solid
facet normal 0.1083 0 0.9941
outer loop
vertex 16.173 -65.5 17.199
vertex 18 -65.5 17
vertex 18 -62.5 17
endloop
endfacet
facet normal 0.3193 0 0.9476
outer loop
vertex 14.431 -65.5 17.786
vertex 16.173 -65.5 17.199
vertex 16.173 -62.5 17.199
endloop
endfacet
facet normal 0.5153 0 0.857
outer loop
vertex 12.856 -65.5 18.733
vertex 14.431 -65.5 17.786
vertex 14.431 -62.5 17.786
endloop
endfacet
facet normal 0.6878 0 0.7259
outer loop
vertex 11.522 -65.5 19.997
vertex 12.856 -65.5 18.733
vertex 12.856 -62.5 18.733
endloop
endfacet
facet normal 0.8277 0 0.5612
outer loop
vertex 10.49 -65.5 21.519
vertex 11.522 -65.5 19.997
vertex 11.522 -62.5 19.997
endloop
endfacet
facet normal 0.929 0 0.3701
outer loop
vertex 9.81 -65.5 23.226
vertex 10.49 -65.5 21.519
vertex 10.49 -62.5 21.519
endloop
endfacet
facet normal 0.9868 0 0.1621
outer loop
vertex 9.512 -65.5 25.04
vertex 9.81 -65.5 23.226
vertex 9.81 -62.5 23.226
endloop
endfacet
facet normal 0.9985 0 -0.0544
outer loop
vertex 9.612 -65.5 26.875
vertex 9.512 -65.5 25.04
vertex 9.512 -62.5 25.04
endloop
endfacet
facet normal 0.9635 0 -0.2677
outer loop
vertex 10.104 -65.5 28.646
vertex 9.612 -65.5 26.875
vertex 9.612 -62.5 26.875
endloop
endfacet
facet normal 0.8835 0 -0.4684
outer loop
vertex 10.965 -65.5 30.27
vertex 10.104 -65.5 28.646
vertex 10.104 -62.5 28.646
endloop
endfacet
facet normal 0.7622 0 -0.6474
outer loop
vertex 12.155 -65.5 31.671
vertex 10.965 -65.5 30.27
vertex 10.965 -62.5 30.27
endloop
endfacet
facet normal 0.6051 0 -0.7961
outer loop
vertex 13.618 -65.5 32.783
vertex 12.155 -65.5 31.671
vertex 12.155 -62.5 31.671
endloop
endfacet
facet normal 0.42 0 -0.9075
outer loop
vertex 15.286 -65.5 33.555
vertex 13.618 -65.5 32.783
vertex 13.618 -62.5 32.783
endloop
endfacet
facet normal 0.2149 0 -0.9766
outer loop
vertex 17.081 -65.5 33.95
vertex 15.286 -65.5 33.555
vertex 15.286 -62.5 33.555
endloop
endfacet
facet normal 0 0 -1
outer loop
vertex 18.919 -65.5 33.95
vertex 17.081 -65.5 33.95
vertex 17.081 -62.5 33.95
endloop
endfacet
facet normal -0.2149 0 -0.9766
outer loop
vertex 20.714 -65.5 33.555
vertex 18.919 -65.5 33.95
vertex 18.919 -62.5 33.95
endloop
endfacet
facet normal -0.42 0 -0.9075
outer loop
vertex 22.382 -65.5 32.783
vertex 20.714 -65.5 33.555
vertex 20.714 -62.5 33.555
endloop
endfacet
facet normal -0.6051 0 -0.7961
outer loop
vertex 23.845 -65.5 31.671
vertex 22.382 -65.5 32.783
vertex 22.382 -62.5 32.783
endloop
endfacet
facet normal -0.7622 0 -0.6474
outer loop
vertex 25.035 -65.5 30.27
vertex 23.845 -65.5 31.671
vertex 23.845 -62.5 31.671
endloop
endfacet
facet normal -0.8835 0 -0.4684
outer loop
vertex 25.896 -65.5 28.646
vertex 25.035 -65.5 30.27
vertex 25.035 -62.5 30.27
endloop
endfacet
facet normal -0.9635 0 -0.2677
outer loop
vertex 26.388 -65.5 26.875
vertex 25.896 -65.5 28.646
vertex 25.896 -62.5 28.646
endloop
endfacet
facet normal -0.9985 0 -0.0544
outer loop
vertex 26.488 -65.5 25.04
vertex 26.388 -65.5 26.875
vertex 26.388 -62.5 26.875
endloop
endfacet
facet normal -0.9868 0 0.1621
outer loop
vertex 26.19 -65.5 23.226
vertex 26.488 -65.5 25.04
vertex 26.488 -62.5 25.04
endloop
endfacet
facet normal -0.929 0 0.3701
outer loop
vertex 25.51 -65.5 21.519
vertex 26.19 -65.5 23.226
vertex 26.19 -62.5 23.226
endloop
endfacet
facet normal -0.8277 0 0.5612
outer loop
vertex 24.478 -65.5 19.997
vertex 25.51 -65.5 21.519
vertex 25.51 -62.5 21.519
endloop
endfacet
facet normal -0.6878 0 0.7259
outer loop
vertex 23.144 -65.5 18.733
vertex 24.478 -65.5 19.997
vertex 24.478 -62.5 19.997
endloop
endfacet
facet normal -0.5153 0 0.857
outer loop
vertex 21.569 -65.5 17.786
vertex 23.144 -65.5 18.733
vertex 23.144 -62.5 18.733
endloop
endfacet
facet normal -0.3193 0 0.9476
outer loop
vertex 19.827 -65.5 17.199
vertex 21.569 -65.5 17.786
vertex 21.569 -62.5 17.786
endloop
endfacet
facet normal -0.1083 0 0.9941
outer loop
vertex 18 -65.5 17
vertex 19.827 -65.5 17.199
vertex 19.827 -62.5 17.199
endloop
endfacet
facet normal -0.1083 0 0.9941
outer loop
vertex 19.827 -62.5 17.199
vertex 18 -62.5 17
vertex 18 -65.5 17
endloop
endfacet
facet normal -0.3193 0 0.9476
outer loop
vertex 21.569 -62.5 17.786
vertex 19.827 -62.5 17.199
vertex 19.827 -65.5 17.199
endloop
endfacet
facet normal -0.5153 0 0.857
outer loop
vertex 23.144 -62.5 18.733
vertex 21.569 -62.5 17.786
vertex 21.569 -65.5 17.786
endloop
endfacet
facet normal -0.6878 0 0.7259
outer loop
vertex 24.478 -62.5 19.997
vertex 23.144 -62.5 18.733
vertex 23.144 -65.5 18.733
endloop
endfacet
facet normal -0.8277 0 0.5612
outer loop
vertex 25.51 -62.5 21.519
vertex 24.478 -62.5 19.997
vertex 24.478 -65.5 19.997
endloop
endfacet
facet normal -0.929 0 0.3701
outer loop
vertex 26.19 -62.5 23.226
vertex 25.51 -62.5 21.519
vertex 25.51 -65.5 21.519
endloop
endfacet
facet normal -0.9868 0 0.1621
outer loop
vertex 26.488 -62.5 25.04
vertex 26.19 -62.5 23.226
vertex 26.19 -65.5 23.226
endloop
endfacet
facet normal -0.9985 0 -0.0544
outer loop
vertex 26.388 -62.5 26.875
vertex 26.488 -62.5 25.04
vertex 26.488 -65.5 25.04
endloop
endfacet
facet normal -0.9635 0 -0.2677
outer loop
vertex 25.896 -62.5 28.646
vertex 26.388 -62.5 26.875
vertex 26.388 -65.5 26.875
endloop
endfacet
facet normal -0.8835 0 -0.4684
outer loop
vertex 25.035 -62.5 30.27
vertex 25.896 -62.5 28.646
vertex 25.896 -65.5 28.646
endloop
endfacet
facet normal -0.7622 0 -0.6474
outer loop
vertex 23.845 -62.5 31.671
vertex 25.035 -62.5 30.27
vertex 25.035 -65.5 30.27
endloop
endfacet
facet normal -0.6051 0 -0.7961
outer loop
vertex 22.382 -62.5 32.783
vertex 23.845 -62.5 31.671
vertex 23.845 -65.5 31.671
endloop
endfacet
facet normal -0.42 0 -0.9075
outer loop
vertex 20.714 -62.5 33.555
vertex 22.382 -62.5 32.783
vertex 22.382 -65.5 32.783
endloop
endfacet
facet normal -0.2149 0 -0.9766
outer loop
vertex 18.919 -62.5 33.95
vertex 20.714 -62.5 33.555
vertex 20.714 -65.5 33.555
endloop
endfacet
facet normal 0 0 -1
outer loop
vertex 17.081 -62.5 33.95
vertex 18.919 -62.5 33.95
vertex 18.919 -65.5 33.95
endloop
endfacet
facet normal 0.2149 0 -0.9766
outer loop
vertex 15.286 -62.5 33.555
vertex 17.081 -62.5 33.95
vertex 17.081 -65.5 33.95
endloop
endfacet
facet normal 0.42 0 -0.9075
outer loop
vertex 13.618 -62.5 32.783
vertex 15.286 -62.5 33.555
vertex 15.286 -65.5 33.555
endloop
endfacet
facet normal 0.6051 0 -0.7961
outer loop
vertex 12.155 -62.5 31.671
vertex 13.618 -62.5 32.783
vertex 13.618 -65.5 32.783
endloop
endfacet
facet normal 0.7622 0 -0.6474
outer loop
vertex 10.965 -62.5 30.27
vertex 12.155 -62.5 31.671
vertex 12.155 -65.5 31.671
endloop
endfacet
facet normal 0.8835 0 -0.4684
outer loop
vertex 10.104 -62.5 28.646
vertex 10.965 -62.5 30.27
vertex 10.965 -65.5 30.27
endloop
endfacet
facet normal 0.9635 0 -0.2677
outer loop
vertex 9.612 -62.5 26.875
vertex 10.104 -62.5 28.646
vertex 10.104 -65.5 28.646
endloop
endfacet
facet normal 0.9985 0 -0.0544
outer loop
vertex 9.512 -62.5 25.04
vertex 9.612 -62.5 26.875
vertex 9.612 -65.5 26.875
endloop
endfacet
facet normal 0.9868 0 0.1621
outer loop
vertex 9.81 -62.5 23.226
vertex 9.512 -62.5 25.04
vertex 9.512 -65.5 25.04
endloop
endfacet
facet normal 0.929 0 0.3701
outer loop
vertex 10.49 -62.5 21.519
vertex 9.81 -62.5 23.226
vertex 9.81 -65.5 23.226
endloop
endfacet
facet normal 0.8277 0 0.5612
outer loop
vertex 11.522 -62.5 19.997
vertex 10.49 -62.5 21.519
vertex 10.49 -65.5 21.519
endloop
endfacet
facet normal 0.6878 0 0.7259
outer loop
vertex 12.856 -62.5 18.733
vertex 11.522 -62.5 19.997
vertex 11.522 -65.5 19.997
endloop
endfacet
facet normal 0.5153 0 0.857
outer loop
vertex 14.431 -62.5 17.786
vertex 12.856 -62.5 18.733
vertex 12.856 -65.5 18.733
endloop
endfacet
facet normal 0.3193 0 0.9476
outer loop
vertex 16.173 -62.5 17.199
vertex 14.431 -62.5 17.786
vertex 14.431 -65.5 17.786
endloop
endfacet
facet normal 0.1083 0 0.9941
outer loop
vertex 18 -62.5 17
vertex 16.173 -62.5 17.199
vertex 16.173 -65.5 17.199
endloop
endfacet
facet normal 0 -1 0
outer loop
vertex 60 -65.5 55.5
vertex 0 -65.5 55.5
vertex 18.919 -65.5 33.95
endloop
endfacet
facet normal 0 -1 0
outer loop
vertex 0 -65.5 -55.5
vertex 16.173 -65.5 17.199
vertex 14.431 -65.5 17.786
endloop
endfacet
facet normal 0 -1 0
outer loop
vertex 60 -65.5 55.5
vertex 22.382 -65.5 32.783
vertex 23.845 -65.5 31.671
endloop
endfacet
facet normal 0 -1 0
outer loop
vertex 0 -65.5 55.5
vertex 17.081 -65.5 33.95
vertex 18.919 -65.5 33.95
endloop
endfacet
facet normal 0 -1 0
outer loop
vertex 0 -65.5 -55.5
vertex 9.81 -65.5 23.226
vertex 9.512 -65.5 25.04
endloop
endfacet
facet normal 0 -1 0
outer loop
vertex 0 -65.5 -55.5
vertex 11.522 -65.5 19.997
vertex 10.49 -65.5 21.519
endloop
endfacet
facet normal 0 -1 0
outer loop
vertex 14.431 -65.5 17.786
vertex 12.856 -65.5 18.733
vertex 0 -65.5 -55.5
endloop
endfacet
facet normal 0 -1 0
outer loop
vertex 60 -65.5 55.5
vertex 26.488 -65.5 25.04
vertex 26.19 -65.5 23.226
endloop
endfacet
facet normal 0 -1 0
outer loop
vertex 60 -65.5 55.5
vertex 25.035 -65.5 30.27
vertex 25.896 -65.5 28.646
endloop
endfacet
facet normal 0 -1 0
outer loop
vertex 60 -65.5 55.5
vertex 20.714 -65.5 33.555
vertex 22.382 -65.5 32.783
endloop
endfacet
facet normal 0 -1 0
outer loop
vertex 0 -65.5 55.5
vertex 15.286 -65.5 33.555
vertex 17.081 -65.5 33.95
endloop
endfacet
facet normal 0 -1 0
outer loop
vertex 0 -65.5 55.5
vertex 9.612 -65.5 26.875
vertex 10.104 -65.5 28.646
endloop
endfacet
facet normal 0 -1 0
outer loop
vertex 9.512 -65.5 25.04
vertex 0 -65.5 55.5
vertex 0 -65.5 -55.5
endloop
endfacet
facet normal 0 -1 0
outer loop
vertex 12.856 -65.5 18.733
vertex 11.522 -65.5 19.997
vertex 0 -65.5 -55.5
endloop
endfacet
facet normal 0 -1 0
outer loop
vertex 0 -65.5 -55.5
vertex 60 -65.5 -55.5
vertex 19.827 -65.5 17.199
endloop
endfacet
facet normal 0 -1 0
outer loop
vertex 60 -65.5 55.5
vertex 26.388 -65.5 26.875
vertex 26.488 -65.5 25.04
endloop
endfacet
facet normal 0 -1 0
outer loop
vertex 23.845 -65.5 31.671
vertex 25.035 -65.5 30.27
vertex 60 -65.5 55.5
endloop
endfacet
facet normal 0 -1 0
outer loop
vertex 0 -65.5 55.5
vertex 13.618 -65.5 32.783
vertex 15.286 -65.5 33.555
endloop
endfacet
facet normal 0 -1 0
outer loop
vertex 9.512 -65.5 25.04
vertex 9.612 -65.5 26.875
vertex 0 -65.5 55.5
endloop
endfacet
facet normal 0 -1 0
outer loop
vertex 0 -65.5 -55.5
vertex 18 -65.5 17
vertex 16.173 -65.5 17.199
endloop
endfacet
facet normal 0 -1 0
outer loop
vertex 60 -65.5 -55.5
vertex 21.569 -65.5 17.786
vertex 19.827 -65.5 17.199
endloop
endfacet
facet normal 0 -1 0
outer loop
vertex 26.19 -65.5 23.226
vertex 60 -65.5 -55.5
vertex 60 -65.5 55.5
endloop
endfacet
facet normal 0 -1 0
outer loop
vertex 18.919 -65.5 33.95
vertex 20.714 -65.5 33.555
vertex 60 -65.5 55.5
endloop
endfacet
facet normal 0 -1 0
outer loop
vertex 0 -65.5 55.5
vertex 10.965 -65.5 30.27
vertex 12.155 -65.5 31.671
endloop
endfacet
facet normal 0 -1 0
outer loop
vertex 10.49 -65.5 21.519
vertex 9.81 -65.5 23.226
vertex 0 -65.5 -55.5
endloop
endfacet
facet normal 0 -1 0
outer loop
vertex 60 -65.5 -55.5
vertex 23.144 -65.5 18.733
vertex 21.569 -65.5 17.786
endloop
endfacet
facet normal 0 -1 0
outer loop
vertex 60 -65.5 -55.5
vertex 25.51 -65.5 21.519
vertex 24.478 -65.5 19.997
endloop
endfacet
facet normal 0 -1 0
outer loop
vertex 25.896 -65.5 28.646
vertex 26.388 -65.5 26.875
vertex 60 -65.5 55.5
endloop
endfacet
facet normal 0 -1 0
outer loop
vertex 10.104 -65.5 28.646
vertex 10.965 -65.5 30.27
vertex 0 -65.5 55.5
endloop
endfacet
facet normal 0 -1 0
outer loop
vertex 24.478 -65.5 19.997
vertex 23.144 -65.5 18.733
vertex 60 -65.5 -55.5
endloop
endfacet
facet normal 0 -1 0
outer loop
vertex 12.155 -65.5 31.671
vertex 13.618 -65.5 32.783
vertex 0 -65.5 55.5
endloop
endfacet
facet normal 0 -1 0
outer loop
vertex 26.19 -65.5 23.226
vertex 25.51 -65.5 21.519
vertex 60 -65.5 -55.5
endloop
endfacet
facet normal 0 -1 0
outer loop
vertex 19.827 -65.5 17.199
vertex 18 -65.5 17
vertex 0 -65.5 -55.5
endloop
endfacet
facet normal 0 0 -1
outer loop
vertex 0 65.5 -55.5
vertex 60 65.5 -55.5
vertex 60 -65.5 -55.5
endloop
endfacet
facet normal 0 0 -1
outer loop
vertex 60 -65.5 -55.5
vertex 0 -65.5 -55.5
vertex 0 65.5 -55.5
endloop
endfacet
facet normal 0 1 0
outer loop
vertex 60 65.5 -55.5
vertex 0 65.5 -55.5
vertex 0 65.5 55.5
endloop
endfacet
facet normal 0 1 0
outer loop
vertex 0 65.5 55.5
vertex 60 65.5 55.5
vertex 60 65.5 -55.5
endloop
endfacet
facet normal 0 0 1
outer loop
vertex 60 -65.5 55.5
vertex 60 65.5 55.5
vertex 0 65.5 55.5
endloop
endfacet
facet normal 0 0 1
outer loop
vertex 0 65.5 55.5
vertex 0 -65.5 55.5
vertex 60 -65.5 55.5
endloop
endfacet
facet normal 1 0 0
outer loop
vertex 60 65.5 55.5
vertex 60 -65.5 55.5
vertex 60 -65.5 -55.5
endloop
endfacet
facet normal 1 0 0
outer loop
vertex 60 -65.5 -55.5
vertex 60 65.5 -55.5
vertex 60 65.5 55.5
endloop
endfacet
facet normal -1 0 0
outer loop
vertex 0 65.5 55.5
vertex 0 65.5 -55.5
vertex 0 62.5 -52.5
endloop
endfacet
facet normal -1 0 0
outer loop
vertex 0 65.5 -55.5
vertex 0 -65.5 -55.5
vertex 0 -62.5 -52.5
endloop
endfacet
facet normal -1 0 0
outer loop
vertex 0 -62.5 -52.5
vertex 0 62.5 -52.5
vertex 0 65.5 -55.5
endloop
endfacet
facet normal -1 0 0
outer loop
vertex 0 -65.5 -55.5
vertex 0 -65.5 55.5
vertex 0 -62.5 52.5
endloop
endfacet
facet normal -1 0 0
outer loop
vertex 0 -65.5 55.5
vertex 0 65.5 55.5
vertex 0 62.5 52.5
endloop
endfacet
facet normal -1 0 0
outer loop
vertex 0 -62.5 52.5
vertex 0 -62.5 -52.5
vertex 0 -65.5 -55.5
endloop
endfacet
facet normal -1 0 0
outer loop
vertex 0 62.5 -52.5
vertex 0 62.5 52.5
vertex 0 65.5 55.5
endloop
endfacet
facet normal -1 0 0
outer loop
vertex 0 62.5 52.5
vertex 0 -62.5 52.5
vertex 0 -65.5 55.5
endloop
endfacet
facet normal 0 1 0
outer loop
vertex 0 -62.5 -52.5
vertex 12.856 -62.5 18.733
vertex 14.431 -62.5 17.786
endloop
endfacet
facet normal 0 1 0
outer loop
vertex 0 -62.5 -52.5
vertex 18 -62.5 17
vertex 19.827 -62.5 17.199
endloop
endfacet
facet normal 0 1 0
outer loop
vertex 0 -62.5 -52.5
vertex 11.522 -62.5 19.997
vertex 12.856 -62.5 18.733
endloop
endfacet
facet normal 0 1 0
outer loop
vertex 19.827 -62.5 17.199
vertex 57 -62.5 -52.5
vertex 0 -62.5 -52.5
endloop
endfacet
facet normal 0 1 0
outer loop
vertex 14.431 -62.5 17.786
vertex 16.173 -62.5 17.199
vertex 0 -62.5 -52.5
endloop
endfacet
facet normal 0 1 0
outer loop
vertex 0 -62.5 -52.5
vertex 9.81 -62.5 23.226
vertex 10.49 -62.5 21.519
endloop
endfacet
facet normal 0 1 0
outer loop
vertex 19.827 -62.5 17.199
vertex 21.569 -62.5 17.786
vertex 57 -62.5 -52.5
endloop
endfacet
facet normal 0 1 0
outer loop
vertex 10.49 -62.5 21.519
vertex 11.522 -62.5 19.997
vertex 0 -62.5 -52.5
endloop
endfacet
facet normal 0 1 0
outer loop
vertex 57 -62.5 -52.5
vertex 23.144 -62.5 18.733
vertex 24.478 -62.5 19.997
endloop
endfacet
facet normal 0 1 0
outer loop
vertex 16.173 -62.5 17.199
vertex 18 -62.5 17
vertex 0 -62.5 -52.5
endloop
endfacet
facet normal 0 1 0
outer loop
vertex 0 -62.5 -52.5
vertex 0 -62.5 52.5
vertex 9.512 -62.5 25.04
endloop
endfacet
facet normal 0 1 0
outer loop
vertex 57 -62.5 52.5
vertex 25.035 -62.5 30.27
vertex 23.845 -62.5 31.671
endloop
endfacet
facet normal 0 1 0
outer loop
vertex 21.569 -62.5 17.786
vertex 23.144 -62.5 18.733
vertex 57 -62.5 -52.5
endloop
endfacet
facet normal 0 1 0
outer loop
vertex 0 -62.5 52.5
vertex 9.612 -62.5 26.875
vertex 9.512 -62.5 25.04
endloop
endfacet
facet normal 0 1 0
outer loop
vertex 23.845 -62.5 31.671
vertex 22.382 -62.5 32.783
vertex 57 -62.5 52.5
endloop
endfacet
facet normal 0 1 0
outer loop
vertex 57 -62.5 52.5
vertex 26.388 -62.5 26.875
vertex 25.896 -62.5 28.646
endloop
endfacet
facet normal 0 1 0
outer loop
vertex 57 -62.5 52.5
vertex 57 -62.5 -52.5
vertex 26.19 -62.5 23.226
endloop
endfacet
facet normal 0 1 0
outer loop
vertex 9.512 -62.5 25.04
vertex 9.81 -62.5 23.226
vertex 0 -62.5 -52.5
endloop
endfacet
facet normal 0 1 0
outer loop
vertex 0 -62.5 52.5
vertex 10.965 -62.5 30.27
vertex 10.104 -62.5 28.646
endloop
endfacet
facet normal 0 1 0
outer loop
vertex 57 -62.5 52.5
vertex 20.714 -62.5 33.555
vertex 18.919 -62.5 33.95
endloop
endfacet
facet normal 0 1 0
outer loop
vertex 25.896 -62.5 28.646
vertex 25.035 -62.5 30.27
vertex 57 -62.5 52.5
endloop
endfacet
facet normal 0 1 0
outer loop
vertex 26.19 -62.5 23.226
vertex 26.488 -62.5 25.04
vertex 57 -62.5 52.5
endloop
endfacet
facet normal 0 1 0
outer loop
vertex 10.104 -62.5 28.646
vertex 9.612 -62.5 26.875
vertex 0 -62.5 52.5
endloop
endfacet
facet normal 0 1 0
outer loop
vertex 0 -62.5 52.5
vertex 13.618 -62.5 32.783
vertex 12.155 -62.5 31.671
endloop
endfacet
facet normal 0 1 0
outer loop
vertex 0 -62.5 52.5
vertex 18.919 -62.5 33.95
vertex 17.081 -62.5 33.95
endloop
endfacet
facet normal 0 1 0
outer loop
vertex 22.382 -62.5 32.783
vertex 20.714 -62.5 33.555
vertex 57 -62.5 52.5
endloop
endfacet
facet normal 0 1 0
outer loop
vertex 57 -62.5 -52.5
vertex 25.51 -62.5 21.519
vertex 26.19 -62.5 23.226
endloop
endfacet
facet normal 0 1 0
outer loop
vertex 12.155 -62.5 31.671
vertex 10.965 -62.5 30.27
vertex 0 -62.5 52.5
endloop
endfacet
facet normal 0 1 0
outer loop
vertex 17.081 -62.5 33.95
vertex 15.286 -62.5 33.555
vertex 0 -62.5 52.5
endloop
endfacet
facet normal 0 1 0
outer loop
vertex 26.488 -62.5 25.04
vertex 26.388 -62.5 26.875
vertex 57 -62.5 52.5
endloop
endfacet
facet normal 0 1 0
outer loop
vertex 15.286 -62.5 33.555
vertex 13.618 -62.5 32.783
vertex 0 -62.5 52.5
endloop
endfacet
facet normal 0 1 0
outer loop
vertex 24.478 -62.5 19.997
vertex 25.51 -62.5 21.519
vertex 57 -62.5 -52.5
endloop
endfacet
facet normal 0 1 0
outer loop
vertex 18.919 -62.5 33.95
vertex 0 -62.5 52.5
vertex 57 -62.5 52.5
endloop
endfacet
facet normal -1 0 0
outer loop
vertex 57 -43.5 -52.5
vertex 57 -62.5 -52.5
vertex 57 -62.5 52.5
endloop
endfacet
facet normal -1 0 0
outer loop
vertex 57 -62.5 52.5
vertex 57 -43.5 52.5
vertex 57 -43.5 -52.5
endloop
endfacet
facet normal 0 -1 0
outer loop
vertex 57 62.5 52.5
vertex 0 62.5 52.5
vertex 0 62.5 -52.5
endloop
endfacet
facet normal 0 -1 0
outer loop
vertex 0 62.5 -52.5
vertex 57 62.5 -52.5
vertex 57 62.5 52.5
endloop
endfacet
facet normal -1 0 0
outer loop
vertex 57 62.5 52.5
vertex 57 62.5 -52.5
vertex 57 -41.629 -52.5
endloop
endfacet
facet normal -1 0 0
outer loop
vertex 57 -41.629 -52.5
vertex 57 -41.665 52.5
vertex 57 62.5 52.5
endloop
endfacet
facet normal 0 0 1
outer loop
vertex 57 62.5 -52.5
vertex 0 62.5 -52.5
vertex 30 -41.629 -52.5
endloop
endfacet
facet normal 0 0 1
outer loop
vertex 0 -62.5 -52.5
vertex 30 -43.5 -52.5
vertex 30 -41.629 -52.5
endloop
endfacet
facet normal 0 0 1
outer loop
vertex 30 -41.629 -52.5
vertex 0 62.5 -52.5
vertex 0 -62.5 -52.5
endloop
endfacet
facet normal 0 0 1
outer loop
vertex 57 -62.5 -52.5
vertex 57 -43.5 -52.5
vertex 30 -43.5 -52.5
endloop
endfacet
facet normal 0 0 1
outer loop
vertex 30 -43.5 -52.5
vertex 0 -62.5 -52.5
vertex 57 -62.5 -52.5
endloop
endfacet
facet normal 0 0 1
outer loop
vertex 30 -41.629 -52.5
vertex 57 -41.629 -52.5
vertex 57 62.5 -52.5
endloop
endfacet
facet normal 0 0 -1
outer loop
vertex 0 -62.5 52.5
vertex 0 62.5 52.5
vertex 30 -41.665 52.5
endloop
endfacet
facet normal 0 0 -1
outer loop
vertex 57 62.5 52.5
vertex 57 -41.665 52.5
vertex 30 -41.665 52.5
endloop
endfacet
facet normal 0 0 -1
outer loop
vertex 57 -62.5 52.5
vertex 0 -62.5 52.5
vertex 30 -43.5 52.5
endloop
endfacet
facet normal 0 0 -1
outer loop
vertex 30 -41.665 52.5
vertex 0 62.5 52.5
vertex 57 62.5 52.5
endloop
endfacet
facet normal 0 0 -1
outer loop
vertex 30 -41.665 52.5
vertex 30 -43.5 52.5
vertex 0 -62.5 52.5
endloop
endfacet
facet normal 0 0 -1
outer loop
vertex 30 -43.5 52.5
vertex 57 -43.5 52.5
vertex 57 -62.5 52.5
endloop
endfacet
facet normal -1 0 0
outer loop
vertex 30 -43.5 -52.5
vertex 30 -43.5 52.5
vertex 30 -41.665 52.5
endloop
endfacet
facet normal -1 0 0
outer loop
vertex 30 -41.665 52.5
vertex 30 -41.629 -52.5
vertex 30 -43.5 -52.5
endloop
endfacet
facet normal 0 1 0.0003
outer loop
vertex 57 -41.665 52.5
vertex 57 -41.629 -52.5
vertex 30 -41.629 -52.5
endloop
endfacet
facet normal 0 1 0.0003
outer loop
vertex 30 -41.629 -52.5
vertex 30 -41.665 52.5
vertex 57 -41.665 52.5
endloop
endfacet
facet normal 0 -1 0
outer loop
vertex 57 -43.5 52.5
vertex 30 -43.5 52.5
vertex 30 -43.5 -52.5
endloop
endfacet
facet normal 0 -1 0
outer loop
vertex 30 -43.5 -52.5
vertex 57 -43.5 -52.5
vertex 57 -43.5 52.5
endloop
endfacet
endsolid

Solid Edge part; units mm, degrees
sketch "Sketch1" plane through (0, 0, 0) normal (1, 0, 0) x (0, 1, 0)
  line L0 (65.5, 55.5) -> (65.5, -55.5)
  line L1 (-65.5, -55.5) -> (65.5, -55.5)
  line L2 (-65.5, 55.5) -> (-65.5, -55.5)
  line L3 (65.5, 55.5) -> (-65.5, 55.5)
extrude "Protrusion1" add sketch "Sketch1" along normal blind 60
shell "Thinwall_3" thickness 3 removed faces 1 at (0, 42.3567, 38.11)
sketch "Sketch2" plane through (60, 0, 0) normal (1, 0, 0) x (0, 0, 1)
  line L0 (-55.5, 43.5) -> (-55.5, 41.6664)
  line L1 (55.5, 43.5) -> (-55.5, 43.5)
  line L2 (55.5, 41.6664) -> (55.5, 43.5)
  line L3 (-55.5, 41.6277) -> (55.5, 41.6664)
extrude "ExtrudedCutout_2" add sketch "Sketch2" against normal blind 30 material side at (60, -42.5832, -55.55)
sketch "Sketch3" plane through (28.5, -62.5, 0) normal (0, 1, 0) x (1, 0, 0)
  circle A0 centre (-10.5, -25.5) radius 8.5
extrude "ExtrudedCutout_4" cut sketch "Sketch3" along normal mid plane 13.736
